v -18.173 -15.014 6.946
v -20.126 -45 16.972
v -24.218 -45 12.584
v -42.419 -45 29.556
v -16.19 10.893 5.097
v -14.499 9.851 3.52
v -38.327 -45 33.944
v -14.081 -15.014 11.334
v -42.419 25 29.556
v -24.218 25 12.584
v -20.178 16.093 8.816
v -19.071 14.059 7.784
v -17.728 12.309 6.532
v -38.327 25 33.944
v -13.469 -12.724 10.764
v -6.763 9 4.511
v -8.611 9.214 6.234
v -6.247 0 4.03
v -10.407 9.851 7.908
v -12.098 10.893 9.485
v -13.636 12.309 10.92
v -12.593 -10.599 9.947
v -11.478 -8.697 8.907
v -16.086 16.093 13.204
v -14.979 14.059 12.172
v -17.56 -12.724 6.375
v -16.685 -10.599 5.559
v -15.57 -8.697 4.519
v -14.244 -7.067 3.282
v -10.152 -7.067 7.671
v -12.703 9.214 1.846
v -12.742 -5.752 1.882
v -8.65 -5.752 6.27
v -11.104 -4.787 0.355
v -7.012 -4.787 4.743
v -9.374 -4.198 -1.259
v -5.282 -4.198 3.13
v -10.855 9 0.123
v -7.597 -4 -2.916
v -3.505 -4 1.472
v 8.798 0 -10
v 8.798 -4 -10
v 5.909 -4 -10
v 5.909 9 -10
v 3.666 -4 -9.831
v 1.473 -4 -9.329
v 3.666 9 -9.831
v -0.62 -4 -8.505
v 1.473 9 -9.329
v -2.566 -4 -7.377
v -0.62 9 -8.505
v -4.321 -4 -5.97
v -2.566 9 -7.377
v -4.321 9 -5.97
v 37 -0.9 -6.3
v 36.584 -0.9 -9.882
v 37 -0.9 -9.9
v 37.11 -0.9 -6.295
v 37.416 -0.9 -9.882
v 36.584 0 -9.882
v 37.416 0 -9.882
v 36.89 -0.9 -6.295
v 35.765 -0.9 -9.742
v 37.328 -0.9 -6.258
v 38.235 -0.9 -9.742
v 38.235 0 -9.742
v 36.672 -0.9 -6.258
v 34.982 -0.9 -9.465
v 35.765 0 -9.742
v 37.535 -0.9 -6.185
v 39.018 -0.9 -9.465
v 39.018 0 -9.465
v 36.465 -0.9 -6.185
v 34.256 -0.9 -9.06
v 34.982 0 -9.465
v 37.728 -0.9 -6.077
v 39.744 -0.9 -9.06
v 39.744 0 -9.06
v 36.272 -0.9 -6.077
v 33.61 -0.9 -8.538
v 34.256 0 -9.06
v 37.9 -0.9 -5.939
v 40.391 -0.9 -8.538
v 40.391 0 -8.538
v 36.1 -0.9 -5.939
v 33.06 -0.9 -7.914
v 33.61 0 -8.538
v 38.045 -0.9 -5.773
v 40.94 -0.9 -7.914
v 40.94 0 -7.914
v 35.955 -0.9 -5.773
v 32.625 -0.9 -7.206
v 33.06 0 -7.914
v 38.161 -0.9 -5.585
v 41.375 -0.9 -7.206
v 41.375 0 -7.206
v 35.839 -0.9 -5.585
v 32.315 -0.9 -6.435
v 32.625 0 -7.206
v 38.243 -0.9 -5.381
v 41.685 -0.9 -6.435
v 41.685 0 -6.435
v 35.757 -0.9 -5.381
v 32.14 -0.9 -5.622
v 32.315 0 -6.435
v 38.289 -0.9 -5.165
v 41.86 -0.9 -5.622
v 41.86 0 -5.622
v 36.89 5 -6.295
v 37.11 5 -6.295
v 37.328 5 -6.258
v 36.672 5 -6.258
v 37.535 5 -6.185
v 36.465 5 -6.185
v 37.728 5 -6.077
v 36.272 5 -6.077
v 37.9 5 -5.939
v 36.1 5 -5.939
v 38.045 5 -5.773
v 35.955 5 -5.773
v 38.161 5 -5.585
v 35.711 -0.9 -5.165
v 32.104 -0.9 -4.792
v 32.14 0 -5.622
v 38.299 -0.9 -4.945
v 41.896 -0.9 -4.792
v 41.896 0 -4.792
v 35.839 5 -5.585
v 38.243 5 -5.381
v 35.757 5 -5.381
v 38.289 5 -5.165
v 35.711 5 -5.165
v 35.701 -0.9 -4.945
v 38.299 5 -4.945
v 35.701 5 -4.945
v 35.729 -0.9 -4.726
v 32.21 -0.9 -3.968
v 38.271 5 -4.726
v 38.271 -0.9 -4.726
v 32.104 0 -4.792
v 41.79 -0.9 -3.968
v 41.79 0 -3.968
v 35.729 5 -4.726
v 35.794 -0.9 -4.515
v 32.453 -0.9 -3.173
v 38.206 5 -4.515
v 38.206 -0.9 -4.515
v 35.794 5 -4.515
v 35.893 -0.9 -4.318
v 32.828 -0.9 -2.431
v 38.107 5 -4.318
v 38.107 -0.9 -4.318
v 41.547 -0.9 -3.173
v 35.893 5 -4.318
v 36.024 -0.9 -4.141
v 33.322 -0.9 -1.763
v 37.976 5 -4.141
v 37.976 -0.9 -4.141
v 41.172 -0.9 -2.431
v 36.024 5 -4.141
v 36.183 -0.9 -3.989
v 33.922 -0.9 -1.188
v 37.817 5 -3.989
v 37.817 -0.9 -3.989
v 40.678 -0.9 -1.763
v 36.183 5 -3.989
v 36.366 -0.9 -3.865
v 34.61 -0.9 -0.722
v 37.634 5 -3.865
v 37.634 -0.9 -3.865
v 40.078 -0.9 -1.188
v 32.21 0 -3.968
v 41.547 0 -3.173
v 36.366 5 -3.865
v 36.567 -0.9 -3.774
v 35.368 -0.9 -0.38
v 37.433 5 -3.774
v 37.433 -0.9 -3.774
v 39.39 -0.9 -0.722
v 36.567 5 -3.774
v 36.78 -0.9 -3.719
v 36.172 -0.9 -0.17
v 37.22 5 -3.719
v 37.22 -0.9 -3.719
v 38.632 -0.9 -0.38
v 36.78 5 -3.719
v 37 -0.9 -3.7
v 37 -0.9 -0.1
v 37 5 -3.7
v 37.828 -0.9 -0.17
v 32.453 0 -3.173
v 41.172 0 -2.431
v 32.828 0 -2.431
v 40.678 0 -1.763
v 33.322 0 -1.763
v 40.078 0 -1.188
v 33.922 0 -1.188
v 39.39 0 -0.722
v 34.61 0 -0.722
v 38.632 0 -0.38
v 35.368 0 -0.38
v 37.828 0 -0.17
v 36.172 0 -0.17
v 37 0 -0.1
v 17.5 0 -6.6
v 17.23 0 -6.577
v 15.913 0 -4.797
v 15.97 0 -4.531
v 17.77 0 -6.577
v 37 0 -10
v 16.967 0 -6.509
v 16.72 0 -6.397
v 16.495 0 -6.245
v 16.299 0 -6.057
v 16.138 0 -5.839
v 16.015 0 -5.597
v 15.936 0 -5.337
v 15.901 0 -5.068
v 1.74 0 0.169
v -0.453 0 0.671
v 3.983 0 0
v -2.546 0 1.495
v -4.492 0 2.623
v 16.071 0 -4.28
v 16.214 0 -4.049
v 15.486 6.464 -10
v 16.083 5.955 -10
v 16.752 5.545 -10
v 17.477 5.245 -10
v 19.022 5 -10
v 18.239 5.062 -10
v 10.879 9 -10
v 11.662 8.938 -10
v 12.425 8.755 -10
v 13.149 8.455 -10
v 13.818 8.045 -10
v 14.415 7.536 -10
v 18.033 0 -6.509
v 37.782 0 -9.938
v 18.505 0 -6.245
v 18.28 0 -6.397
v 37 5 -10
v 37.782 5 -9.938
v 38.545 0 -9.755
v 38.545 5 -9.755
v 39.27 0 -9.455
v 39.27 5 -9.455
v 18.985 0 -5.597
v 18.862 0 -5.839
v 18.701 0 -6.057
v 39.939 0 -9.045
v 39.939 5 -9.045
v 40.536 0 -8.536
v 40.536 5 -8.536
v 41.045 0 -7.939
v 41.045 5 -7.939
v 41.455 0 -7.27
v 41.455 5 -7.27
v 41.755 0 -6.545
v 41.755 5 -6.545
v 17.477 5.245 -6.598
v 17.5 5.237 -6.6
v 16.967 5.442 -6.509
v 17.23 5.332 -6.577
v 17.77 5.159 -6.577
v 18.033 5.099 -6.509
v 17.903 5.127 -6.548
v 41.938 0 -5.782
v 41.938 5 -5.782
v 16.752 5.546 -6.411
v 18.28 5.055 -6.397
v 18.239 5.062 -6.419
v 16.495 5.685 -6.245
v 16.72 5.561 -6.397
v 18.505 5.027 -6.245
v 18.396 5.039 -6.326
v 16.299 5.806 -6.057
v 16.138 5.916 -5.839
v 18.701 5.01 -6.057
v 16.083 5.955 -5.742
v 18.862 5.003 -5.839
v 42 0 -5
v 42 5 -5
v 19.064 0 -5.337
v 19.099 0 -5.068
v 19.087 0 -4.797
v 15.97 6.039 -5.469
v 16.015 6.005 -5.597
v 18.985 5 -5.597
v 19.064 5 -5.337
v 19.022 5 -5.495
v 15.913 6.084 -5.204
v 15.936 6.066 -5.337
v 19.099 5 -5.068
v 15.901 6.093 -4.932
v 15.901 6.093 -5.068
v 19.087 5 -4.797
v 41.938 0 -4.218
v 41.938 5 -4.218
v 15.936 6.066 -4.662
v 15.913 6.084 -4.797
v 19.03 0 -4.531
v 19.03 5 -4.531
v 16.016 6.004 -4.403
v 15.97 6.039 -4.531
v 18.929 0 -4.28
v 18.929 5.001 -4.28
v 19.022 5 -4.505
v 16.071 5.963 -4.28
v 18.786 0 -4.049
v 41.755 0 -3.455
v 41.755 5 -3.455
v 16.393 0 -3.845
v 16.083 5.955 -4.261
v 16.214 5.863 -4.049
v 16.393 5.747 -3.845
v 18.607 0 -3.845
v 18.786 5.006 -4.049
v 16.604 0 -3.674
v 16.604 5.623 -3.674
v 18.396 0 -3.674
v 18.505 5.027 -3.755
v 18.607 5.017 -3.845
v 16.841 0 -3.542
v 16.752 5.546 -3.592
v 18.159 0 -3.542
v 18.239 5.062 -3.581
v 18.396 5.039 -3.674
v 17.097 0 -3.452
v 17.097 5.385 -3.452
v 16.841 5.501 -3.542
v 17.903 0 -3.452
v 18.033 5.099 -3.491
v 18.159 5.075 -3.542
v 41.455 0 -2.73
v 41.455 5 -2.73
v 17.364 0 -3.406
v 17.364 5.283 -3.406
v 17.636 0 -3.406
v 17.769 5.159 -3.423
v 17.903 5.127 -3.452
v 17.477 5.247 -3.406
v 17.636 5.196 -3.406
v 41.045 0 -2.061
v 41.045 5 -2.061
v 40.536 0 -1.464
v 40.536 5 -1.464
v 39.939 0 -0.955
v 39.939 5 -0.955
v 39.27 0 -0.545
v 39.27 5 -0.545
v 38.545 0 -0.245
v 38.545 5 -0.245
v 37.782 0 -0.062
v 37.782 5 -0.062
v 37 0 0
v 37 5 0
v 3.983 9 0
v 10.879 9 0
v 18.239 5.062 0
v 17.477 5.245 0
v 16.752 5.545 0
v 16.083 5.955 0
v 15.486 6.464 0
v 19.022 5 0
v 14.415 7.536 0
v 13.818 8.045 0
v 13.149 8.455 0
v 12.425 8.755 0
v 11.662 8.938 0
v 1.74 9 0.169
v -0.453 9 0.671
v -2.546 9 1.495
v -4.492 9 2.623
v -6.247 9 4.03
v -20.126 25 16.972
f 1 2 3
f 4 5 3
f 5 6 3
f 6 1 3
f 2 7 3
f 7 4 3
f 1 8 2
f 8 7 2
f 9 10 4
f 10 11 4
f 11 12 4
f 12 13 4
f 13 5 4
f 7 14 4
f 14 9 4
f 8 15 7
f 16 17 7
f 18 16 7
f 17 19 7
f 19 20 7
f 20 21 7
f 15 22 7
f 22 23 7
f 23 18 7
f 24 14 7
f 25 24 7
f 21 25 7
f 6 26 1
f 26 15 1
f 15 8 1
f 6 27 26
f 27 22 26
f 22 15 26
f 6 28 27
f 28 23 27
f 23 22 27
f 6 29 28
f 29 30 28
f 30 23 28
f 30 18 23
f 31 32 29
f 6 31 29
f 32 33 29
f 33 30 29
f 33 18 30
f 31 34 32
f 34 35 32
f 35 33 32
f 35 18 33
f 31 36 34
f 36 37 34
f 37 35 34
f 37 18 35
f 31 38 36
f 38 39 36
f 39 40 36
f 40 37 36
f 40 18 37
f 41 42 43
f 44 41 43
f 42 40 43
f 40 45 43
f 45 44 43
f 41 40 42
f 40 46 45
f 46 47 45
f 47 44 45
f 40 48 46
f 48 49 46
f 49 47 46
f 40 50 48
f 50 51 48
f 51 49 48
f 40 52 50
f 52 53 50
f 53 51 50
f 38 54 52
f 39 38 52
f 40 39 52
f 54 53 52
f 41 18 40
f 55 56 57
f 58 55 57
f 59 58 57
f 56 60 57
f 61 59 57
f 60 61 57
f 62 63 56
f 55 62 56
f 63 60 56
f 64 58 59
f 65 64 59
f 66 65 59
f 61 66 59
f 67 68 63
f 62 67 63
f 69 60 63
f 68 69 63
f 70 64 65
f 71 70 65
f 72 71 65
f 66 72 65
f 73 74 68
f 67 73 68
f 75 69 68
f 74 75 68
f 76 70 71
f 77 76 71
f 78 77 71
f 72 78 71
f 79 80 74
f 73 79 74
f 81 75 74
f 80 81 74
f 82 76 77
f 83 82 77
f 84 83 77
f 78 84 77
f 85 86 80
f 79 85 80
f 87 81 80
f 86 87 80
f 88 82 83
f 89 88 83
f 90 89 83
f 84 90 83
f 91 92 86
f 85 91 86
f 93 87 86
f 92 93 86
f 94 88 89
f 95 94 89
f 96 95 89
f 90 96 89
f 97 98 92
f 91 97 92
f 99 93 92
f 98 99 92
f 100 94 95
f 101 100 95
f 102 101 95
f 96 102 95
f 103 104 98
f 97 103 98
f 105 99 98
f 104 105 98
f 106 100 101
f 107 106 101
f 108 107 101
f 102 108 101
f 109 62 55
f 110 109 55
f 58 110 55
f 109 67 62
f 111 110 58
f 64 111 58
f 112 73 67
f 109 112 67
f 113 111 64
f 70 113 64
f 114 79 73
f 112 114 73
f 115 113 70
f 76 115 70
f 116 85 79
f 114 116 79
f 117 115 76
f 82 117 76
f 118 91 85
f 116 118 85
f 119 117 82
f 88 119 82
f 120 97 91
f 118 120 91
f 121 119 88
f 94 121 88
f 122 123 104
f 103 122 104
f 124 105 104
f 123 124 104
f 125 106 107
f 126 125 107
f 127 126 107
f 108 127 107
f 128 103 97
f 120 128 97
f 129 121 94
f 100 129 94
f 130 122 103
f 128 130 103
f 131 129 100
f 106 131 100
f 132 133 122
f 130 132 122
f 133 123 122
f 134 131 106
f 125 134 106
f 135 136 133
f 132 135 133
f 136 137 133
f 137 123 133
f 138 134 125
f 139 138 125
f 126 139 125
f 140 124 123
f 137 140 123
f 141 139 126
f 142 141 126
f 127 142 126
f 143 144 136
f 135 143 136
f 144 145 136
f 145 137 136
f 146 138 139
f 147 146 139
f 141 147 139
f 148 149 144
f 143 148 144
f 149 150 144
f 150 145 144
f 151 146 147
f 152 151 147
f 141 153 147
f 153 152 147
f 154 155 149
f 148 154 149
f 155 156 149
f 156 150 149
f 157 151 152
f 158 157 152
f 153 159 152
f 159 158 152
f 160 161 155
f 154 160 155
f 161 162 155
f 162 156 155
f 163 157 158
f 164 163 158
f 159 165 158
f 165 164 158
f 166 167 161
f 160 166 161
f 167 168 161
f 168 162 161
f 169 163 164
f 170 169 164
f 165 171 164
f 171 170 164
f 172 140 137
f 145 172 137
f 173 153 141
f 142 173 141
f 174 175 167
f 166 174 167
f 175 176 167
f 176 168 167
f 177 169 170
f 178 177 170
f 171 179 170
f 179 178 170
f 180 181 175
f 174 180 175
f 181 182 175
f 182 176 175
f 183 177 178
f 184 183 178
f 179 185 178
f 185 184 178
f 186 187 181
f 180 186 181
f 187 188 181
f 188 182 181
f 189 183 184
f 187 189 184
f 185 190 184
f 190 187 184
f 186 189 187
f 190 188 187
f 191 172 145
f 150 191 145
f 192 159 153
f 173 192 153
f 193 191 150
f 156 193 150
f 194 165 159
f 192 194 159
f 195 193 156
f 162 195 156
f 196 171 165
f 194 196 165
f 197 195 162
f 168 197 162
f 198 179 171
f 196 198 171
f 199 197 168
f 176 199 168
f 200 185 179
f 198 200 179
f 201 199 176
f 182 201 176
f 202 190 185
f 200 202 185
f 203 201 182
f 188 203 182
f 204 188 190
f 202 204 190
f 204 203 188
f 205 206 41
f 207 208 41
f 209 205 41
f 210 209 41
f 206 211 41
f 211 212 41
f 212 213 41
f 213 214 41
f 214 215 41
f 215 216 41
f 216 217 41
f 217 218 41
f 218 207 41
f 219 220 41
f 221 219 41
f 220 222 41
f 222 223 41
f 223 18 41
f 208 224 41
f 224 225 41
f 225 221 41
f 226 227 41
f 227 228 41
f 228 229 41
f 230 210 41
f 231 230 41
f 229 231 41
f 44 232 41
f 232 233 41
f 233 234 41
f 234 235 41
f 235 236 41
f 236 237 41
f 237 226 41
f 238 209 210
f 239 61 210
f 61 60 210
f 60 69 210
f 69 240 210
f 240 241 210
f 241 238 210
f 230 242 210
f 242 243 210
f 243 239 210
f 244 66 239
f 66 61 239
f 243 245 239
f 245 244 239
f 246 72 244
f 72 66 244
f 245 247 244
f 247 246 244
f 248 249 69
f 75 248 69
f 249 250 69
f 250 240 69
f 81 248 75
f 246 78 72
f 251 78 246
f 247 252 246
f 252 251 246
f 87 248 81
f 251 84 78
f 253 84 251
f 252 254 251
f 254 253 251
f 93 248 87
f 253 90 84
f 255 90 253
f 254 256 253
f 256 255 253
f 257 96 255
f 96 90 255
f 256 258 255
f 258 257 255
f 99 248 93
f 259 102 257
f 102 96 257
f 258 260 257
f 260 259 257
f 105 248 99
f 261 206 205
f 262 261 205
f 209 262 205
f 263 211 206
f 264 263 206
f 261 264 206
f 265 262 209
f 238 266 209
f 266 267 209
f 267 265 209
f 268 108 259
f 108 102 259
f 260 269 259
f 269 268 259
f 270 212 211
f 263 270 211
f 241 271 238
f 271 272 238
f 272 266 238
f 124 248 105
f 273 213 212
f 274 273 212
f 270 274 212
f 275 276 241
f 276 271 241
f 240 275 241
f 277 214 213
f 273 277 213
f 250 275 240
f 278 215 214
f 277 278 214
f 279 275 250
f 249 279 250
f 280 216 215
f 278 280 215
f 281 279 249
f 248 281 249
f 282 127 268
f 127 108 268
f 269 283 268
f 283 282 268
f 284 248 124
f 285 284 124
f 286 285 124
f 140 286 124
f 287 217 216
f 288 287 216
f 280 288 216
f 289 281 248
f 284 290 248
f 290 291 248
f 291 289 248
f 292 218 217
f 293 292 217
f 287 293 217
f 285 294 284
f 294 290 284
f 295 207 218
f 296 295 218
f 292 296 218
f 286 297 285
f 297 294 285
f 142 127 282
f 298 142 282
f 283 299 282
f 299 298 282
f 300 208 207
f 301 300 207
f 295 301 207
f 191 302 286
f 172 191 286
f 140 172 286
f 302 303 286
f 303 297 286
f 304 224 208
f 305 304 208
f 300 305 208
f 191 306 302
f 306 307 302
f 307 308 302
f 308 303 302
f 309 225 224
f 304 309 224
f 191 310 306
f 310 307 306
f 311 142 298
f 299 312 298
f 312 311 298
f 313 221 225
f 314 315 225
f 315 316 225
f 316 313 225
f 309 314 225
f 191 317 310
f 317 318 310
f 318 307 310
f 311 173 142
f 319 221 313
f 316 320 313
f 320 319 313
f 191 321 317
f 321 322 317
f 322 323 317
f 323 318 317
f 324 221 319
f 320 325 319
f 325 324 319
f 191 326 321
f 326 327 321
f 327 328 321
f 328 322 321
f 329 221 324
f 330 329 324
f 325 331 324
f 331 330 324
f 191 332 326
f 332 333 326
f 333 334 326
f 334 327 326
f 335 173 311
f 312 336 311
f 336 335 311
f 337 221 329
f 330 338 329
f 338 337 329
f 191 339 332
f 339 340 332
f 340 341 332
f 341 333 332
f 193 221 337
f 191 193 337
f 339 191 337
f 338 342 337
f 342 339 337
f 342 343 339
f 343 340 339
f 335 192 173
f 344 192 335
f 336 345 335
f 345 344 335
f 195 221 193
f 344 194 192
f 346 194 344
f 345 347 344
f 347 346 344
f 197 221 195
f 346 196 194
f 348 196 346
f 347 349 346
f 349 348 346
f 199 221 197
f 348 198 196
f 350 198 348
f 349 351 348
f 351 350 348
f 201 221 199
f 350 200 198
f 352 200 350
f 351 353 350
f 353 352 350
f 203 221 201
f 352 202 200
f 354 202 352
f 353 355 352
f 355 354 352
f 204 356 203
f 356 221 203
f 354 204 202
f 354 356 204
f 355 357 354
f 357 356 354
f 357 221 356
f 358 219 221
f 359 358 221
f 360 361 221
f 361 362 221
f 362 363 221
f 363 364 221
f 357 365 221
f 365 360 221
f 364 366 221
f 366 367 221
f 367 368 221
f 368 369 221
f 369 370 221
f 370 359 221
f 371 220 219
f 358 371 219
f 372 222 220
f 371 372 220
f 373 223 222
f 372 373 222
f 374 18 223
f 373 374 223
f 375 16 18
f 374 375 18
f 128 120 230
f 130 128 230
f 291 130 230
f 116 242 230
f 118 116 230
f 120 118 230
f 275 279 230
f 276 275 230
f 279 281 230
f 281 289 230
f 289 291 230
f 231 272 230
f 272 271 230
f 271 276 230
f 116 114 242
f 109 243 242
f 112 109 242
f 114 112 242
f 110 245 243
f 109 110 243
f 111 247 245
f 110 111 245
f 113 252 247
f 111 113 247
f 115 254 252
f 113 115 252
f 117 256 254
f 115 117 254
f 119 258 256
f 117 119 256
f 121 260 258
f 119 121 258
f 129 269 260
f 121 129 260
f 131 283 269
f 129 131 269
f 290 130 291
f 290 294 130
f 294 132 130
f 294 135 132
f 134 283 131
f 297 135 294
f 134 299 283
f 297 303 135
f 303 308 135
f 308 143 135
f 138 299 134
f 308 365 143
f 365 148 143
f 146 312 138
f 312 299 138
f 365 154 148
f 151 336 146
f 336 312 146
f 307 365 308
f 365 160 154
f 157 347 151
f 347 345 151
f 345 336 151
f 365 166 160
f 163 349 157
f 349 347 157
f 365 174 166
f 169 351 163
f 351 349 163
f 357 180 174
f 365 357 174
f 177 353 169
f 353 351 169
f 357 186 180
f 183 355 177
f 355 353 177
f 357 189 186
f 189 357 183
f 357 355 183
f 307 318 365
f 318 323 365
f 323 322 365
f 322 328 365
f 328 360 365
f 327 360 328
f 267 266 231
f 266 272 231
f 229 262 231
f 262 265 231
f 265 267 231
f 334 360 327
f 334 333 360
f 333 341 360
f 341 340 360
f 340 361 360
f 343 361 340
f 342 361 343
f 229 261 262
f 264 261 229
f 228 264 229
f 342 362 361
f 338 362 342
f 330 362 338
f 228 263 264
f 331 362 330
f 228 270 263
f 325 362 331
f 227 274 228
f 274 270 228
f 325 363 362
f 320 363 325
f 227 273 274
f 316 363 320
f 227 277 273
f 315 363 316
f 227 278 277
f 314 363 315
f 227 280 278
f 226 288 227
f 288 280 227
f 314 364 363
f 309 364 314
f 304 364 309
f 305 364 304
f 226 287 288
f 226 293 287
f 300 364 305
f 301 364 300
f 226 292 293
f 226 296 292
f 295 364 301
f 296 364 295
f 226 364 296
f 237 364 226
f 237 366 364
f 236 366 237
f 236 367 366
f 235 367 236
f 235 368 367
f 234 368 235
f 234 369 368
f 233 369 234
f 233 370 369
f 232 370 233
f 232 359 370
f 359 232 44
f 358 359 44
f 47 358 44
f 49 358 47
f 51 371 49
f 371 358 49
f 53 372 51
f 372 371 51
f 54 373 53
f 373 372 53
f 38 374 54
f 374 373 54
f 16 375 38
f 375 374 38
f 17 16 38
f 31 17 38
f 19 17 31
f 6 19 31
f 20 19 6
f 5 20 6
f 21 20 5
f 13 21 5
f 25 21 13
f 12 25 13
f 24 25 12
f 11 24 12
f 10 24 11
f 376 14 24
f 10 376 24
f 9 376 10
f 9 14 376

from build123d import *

# Parameters (mm, degrees)
BOSS_EXTRUDE1_DEPTH = 5
FILLET1_R           = 5
SKETCH2_R           = 1.2999999999999945
CUT_EXTRUDE1_DEPTH  = 10
BOSS_EXTRUDE2_DEPTH = 20
BOSS_EXTRUDE3_DEPTH = 45
BOSS_EXTRUDE4_DEPTH = 6
SKETCH6_R           = 4.900000000000002
SKETCH6_R_2         = 1.299999999999994
BOSS_EXTRUDE5_DEPTH = 0.9
BOSS_EXTRUDE6_DEPTH = 3.9999999999999964
BOSS_EXTRUDE7_DEPTH = 3.9999999999999964
FILLET2_R           = 15
FILLET7_SIZE        = 5
FILLET8_R           = 5
SKETCH11_R          = 1.6000000000000019
CUT_EXTRUDE2_DEPTH  = 10


# Some blends are built 0.0001 mm under size
with BuildPart() as part:
    # Sketch1 → Boss-Extrude1 (new body)
    with BuildSketch(Plane(origin=(0, 0, 0), x_dir=(1, 0, 0), z_dir=(0, 1, 0))):
        Polygon((4.091990160374978, 5.611877790284978), (0, 10), (0, 1.79603523340848), align=None)
        Polygon((0, 1.79603523340848), (0, 10), (-42.4185146939121, -29.55590488362469), (-38.32652453353713, -33.94402709333974), (-1.9260119864091507, 0), align=None)
        Polygon((42, 10), (0, 10), (4.091990160374978, 5.611877790284978), (0, 1.7960352334084817), (0, 0), (42, 0), align=None)
        Polygon((0, 0), (0, 1.79603523340848), (-1.9260119864091507, 0), align=None)
    extrude(amount=BOSS_EXTRUDE1_DEPTH)

    # Fillet1
    fillet1_edges = [part.edges().sort_by_distance(p)[0] for p in [
        (42, 2.5, 0),
        (42, 2.5, -10),
    ]]
    fillet(fillet1_edges, radius=FILLET1_R - 0.0001)  # a hair under: the kernel refuses the full size

    # Sketch2 → Cut-Extrude1 (cut)
    with BuildSketch(Plane(origin=(0, 5, 0), x_dir=(1, 0, 0), z_dir=(0, 1, 0))):
        with Locations(Location((37.00000000000001, 4.999999999999989, 0), (0, 0, 270))):
            Circle(SKETCH2_R)
    extrude(amount=-CUT_EXTRUDE1_DEPTH, mode=Mode.SUBTRACT)

    # Sketch3 → Boss-Extrude2 (add)
    with BuildSketch(Plane(origin=(0, 5, 0), x_dir=(1, 0, 0), z_dir=(0, 1, 0))):
        Polygon((-42.4185146939121, -29.55590488362471), (-38.32652453353713, -33.94402709333974), (-20.126268259973138, -16.97201354666987), (-24.21825842034811, -12.583891336954824), align=None)
    extrude(amount=BOSS_EXTRUDE2_DEPTH)

    # Sketch4 → Boss-Extrude3 (add)
    with BuildSketch(Plane.XZ):
        Polygon((-42.4185146939121, 29.55590488362471), (-38.32652453353713, 33.94402709333974), (-20.126268259973134, 16.972013546669885), (-24.218258420348107, 12.583891336954828), align=None)
    extrude(amount=BOSS_EXTRUDE3_DEPTH)

    # Sketch5 → Boss-Extrude4 (add)
    with BuildSketch(Plane(origin=(-4.987820251299118, 0, -5.348782368720677), x_dir=(-0.7313537016191739, 0, 0.6819983600624947), z_dir=(-0.6819983600624948, 0, -0.731353701619174))):
        Polygon((26.29430619749914, -45), (26.29430619749914, 0), (13.888976828400956, 0), align=None)
        Polygon((13.888976828400958, 5), (26.29430619749914, 25), (26.29430619749914, 5), align=None)
    extrude(amount=-BOSS_EXTRUDE4_DEPTH)

    # Sketch6 → Boss-Extrude5 (add)
    with BuildSketch(Plane.XZ):
        with Locations(Location((37.00000000000001, -4.999999999999989, 0), (0, 0, 90))):
            Circle(SKETCH6_R)
        with Locations(Location((37.00000000000001, -4.999999999999989, 0), (0, 0, 90))):
            Circle(SKETCH6_R_2, mode=Mode.SUBTRACT)
    extrude(amount=BOSS_EXTRUDE5_DEPTH)

    # Sketch8 → Boss-Extrude6 (add)
    with BuildSketch(Plane.XZ):
        Polygon((0, -10), (-19.681916643400598, 8.353684194074795), (-15.589926483025625, 12.741806403789838), (8.797675113837775, -10), align=None)
    extrude(amount=BOSS_EXTRUDE6_DEPTH)

    # Sketch9 → Boss-Extrude7 (add)
    with BuildSketch(Plane(origin=(0, 5, 0), x_dir=(1, 0, 0), z_dir=(0, 1, 0))):
        Polygon((0, 10), (-20.085147023573704, -8.729702606775238), (-16.79961762354496, -13.869861641891177), (-1.92601198640914, -7.11e-15), (17.950520425486616, 5.22e-15), (17.950520425486616, 10), align=None)
    extrude(amount=BOSS_EXTRUDE7_DEPTH)

    # Fillet2
    fillet2_edges = [part.edges().sort_by_distance(p)[0] for p in [
        (-14.914116497044613, 8.999999999999996, 8.009621013204297),
        (-1.9260119864091478, 4.499999999999998, 2.06e-15),
        (0, 2.5, -10),
        (-13.906040546611829, -3.9999999999999973, 7.069574981453184),
    ]]
    fillet(fillet2_edges, radius=FILLET2_R)

    # Fillet7
    # the kernel refuses this chamfer: 5 mm, written as the material it takes off along each edge
    with BuildSketch(Plane(origin=(17.950520425486616, 8.999999999999996, 12.858414939829549), x_dir=(0.027495876610586317, -0.9996219169112968, 0), z_dir=(0, 0, -1))) as fillet7_piece_1_section:
        Polygon((FILLET7_SIZE * 0.999621916911, FILLET7_SIZE * 0.0274958766106), (-FILLET7_SIZE * 0.0274958766106, FILLET7_SIZE * 0.999621916911), (0, 0), align=None)
    fillet7_piece_1 = extrude(amount=35.71682987965911, mode=Mode.PRIVATE)
    fillet7_piece_1 = split(fillet7_piece_1, bisect_by=Plane(origin=(16.221928363932022, 5, -5.000000000000004), z_dir=(0, 1, 0)), keep=Keep.TOP, mode=Mode.PRIVATE)
    add(fillet7_piece_1, mode=Mode.SUBTRACT)

    # Fillet8
    fillet8_edges = [part.edges().sort_by_distance(p)[0] for p in [
        (12.95052042548848, 8.999999999998002, -5.000000000000002),
        (16.950520425489678, 5, -4.999999999999999),
    ]]
    fillet(fillet8_edges, radius=FILLET8_R)

    # Sketch11 → Cut-Extrude2 (cut)
    with BuildSketch(Plane(origin=(0, 0, 0), x_dir=(-1, 0, 0), z_dir=(0, -1, 0))):
        with Locations(Location((-17.499999999999993, 5.000000000000053, 0), (0, 0, 90))):
            Circle(SKETCH11_R)
    extrude(amount=-CUT_EXTRUDE2_DEPTH, mode=Mode.SUBTRACT)


solid = part.part
